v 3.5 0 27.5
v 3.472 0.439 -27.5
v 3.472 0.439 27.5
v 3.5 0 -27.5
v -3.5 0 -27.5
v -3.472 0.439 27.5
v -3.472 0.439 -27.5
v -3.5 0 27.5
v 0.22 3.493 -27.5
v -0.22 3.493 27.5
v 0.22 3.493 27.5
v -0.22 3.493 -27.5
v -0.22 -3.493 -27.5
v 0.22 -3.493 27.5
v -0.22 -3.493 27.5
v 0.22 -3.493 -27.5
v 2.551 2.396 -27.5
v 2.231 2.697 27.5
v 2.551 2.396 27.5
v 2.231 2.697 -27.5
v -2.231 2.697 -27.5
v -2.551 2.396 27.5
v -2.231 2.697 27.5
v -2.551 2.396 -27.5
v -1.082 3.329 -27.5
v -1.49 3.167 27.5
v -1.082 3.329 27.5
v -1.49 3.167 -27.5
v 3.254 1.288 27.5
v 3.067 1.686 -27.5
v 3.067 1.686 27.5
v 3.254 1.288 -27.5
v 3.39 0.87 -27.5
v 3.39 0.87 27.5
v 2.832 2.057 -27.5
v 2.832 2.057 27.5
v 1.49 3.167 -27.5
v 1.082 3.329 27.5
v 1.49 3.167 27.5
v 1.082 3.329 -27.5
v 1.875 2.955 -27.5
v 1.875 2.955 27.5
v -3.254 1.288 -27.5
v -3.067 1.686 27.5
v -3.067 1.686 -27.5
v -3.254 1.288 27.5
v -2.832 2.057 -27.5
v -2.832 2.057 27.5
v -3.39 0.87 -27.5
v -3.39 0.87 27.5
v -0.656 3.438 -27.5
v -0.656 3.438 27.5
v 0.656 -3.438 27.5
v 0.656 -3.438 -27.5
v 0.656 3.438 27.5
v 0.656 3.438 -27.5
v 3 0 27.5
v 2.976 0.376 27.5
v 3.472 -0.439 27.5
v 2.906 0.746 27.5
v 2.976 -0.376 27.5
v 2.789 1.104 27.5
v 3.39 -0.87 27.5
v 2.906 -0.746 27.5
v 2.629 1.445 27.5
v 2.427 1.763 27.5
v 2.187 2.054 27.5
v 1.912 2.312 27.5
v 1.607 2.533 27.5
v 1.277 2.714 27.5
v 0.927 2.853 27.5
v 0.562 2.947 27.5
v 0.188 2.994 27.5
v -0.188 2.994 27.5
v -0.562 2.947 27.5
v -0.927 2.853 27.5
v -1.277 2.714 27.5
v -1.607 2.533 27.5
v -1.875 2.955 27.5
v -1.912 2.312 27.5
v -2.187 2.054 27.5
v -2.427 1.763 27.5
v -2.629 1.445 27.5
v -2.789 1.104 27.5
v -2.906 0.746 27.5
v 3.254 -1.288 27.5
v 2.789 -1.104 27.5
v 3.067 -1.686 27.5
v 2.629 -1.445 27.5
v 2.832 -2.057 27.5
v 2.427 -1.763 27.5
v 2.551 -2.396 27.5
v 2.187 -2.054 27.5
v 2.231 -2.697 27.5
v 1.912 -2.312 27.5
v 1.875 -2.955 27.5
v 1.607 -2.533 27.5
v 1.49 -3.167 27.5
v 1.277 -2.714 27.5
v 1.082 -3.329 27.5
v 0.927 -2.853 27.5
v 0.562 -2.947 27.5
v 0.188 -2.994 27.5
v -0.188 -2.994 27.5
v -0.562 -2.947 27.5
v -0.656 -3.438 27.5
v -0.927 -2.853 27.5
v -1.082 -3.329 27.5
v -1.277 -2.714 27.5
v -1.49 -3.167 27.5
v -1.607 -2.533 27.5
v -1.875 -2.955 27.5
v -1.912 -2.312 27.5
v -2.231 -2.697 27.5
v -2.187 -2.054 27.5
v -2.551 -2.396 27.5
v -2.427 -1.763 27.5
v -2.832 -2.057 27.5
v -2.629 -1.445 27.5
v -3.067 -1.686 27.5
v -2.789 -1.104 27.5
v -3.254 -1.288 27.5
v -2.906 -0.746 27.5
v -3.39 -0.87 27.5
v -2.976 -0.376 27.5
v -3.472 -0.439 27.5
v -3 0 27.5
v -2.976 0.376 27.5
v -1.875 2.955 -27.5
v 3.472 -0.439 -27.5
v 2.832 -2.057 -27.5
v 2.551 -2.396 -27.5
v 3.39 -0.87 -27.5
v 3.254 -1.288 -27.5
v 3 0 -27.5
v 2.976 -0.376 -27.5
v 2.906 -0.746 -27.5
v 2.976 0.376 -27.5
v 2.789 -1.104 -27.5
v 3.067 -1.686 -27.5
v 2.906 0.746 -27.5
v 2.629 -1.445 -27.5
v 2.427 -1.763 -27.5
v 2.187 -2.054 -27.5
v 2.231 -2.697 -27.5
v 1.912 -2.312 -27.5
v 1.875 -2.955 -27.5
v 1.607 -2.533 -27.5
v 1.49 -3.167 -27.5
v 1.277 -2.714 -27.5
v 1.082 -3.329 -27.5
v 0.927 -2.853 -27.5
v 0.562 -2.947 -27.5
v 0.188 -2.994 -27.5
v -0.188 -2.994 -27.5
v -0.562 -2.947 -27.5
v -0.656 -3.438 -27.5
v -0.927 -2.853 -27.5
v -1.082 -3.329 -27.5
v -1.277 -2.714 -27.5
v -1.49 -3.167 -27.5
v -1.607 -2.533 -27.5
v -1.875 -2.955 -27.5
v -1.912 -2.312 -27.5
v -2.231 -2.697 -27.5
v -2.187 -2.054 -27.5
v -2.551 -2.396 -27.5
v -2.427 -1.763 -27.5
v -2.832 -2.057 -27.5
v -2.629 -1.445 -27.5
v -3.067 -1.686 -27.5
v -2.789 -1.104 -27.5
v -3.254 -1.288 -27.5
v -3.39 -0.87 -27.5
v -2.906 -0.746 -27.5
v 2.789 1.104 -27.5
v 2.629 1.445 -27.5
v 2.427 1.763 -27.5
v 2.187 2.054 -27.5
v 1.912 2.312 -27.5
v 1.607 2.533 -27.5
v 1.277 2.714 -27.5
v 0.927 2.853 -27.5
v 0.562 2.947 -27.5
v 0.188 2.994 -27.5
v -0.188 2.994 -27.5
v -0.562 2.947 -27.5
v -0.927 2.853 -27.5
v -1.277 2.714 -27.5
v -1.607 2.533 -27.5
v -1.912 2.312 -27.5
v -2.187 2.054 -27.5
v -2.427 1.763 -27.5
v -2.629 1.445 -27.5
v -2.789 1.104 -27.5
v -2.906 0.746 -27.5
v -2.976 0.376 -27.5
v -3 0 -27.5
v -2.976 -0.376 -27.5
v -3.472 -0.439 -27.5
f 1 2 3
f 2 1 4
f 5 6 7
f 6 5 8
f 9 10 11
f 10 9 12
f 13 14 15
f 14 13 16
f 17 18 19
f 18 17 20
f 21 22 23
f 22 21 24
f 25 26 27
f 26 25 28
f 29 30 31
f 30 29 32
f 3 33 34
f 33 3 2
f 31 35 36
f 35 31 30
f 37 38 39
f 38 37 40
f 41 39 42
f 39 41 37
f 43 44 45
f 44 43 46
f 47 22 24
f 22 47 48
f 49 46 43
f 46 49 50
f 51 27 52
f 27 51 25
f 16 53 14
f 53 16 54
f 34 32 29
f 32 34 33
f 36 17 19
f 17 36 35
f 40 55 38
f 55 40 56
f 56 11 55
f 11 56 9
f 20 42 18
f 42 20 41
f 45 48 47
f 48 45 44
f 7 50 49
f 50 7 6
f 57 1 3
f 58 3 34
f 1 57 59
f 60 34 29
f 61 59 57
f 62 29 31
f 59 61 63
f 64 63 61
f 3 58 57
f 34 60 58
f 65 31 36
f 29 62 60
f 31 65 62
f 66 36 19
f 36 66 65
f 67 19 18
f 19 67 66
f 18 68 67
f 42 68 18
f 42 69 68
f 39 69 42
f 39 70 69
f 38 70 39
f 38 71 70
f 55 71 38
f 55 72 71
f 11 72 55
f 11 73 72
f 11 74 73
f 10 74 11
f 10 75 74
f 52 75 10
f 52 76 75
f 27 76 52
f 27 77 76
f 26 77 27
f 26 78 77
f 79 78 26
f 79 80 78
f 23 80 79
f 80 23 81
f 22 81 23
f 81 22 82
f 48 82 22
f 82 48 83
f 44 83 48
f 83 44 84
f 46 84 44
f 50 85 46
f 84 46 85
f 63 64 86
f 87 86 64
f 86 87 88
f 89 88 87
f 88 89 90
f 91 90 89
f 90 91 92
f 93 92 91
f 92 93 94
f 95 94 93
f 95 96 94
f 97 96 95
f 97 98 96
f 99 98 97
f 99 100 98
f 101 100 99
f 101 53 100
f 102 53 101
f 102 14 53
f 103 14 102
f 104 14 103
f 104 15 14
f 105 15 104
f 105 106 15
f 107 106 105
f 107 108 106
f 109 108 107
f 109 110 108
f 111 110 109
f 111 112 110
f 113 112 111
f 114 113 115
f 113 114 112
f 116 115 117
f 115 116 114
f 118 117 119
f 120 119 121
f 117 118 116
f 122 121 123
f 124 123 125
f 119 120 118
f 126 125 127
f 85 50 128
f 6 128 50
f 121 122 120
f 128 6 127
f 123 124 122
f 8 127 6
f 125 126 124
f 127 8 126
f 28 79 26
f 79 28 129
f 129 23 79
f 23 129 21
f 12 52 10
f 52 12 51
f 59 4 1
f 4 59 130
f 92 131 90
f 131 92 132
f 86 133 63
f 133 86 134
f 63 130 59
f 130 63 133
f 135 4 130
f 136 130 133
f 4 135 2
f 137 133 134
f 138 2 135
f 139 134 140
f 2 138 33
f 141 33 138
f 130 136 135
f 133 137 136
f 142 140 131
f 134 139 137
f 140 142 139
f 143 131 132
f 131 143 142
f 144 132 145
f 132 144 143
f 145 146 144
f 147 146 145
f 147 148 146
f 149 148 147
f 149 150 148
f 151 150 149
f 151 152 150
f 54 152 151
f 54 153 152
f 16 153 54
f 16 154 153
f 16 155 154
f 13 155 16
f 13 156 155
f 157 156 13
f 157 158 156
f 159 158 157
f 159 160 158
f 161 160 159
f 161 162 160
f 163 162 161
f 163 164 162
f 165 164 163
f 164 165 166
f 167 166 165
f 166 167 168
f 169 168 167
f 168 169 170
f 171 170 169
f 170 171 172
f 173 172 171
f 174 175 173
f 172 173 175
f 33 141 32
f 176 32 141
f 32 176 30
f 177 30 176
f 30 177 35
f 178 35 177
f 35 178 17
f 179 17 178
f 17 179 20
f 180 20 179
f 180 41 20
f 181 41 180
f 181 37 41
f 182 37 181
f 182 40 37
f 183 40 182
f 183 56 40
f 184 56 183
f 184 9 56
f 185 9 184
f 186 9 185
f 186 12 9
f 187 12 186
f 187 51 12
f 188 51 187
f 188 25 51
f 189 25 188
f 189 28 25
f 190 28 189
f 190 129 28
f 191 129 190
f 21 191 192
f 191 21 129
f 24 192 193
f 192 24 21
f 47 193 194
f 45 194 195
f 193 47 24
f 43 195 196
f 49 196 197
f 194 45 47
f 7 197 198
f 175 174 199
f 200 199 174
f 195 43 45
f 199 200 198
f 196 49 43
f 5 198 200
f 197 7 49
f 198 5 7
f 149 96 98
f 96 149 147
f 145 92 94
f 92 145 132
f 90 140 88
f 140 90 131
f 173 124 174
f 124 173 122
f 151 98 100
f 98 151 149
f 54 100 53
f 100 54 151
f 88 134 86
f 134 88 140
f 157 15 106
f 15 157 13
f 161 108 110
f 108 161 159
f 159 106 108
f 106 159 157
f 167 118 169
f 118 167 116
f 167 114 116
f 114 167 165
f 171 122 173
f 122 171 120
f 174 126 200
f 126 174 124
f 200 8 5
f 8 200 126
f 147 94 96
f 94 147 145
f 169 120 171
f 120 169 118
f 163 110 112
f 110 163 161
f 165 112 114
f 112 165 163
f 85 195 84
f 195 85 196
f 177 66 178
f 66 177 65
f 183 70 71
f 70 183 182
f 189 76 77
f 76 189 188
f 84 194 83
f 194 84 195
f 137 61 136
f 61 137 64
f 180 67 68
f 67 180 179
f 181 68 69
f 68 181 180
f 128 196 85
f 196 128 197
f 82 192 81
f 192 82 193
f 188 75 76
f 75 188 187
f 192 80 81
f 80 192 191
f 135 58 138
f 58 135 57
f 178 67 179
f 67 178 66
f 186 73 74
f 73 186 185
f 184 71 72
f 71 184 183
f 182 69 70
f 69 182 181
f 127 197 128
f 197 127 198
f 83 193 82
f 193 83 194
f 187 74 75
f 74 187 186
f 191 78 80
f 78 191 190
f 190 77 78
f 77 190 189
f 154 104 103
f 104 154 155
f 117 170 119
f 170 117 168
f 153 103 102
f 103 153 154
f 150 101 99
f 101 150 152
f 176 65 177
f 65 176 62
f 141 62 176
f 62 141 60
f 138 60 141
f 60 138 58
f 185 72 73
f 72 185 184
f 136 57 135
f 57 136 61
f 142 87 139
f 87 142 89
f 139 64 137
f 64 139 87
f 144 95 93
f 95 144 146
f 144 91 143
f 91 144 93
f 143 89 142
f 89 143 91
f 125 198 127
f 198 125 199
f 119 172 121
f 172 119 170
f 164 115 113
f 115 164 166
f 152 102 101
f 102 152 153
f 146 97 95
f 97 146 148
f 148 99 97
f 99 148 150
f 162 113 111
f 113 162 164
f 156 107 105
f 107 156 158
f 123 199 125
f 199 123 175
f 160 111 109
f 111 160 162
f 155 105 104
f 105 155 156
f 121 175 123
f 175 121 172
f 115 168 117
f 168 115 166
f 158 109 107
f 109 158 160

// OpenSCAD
$fn = 50;


difference() {
	union() {
		translate(v = [0, 0, -27.5000000000]) {
			cylinder(h = 55, r = 3.5000000000);
		}
	}
	union() {
		translate(v = [0, 0, -100.0000000000]) {
			cylinder(h = 200, r = 3);
		}
	}
}
